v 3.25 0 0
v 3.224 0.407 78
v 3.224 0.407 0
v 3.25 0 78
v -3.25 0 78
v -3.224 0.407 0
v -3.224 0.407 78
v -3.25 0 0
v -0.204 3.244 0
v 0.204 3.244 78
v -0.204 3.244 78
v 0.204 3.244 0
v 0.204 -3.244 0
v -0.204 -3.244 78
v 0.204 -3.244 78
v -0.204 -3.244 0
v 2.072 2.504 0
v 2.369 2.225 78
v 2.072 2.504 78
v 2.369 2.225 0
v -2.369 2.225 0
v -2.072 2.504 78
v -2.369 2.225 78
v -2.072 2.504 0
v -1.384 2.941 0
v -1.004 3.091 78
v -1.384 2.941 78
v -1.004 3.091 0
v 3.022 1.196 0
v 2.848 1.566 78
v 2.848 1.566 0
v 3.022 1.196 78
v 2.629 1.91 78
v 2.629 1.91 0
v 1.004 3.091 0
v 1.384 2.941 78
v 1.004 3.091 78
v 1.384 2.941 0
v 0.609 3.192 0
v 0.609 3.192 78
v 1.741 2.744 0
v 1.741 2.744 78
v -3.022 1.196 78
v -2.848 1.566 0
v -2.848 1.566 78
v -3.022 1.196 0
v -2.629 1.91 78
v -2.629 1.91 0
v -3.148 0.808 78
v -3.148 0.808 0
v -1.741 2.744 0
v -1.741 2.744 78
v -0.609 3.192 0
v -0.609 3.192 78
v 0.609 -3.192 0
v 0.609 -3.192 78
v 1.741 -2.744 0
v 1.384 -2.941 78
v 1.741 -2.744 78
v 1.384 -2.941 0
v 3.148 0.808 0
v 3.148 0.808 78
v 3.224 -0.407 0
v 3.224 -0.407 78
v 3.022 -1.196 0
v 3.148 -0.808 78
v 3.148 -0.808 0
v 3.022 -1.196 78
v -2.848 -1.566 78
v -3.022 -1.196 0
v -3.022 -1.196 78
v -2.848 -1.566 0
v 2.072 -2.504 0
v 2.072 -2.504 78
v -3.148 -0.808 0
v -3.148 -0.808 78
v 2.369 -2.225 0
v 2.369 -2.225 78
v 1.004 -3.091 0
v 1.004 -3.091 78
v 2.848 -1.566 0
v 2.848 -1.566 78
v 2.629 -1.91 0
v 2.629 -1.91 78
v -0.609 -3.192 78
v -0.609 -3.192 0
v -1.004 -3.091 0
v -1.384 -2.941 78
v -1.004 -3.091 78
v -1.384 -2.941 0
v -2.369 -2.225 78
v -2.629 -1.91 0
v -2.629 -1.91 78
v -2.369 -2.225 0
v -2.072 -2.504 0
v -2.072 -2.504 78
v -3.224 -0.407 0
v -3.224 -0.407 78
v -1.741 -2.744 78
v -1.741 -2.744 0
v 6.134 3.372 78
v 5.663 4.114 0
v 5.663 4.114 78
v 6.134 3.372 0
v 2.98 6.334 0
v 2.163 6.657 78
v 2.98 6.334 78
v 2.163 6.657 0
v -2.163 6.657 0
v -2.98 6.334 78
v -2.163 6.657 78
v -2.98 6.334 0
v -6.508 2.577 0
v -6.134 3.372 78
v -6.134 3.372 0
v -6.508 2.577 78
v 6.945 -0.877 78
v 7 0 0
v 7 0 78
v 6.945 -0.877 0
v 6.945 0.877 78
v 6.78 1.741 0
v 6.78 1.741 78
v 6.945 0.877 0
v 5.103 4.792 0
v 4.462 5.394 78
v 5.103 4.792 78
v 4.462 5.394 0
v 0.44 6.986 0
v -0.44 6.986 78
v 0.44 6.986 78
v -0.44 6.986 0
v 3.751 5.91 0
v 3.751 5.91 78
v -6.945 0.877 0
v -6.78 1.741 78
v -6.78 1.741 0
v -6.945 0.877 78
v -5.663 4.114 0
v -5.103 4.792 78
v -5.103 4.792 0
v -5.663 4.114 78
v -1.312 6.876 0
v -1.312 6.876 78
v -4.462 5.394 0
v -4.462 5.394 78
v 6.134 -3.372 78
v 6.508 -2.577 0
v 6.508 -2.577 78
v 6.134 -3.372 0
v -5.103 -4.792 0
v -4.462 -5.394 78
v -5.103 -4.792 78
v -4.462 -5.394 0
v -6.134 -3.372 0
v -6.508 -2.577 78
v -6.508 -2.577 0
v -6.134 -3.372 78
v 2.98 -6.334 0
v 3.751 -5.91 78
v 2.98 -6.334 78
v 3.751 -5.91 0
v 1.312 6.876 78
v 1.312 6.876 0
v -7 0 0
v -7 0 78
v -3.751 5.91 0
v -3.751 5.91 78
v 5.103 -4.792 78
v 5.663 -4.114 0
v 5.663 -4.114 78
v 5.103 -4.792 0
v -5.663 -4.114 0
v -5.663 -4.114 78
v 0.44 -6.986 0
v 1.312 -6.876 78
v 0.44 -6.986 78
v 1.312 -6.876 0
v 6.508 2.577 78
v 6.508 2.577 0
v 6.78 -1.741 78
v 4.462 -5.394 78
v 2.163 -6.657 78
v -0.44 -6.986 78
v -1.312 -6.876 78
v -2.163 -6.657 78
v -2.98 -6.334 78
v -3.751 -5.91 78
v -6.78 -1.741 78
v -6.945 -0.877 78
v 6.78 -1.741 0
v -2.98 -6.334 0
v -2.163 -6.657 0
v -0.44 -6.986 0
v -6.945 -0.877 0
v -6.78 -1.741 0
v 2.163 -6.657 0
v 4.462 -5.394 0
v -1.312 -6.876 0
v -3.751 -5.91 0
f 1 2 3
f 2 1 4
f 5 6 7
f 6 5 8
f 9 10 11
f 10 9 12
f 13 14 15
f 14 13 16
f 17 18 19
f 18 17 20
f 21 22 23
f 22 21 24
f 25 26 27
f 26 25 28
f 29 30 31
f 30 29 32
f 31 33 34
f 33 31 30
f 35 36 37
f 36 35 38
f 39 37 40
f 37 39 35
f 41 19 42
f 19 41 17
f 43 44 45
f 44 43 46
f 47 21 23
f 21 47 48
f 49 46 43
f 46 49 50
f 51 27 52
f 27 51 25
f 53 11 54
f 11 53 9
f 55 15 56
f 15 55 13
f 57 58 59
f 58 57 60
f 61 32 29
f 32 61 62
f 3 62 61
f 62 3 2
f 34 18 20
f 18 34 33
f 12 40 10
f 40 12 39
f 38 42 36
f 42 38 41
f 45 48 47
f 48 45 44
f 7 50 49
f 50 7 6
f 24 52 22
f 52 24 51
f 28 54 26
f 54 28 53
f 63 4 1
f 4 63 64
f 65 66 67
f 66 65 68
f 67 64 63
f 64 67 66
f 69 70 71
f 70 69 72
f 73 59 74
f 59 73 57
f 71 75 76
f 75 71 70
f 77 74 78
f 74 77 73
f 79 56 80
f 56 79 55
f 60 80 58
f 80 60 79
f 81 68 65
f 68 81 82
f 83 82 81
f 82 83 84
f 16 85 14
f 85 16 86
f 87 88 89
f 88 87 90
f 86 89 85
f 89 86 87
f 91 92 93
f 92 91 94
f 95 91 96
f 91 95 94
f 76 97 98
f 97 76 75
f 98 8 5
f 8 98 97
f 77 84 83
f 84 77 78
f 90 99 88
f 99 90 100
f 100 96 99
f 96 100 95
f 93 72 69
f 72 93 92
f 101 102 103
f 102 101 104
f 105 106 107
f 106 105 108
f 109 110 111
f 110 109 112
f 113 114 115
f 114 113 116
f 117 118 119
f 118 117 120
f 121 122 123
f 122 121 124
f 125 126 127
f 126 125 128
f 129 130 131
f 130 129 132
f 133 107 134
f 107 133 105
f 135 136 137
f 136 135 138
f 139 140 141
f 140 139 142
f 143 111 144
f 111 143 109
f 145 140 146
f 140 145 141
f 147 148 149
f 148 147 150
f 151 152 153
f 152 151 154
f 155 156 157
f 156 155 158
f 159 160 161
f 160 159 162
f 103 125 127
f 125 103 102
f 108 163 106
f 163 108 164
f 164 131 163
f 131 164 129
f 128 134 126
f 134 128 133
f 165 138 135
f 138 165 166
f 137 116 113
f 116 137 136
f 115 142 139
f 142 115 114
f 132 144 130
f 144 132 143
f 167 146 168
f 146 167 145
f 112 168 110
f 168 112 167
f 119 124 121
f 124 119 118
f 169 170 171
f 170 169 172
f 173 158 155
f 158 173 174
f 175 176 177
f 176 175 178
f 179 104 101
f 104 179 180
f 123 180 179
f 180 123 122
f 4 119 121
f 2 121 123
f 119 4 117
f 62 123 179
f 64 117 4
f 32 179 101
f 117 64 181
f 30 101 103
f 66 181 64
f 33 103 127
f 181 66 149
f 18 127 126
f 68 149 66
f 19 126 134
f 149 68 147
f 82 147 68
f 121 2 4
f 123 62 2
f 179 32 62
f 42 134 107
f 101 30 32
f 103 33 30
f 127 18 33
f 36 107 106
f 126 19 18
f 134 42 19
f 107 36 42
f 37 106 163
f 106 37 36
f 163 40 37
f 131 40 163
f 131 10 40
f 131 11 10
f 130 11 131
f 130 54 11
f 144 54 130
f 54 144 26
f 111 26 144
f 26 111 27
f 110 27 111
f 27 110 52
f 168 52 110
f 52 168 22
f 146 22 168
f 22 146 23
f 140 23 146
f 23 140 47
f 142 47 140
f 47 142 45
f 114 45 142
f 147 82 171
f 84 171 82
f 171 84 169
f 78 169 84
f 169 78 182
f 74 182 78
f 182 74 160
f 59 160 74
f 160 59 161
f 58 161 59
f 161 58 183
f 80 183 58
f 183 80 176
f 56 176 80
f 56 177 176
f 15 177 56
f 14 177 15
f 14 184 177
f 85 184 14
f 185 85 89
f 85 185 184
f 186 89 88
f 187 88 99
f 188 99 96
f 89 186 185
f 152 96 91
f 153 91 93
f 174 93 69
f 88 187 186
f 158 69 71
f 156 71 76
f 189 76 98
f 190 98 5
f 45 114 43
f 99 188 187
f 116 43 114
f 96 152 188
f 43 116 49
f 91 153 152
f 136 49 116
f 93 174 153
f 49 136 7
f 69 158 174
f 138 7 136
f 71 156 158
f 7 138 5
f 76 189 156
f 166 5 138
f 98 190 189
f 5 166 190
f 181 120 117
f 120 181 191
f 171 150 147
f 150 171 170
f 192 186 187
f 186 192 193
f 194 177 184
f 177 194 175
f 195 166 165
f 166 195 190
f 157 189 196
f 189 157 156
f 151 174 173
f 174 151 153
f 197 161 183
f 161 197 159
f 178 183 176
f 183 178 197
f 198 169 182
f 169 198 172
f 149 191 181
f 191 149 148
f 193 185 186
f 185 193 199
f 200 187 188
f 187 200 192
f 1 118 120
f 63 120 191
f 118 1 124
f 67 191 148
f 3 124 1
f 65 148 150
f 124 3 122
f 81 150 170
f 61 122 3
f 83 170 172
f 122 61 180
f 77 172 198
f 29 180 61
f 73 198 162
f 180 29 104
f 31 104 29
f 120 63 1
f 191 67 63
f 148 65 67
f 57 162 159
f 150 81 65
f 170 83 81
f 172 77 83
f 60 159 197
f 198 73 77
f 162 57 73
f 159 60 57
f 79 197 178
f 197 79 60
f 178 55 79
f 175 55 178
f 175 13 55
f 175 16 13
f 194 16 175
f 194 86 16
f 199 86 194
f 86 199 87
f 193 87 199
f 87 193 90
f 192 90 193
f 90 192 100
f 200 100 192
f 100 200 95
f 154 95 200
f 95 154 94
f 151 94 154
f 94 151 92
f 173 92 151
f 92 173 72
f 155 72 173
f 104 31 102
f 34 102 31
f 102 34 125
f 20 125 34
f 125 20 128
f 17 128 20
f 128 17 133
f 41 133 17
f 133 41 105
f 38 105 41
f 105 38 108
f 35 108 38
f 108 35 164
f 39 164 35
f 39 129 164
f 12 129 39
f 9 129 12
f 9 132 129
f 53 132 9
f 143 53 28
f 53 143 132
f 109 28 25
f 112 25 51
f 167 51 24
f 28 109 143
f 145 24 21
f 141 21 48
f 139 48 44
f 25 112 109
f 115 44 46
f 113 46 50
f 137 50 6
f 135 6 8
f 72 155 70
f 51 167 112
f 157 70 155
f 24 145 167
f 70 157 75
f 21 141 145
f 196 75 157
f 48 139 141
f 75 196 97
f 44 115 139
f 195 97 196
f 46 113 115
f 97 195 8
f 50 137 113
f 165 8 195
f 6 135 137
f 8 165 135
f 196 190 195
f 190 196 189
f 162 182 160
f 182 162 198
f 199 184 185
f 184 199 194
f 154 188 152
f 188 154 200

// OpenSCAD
$fn = 50;


difference() {
	union() {
		cylinder(h = 78, r = 7.0000000000);
	}
	union() {
		translate(v = [0.0000000000, 0.0000000000, -100.0000000000]) {
			cylinder(h = 200, r = 3.2500000000);
		}
		translate(v = [0.0000000000, 0.0000000000, -100.0000000000]) {
			cylinder(h = 200, r = 3.2500000000);
		}
		translate(v = [0.0000000000, 0.0000000000, -100.0000000000]) {
			cylinder(h = 200, r = 3.2500000000);
		}
		translate(v = [0.0000000000, 0.0000000000, -100.0000000000]) {
			cylinder(h = 200, r = 3.2500000000);
		}
	}
}
